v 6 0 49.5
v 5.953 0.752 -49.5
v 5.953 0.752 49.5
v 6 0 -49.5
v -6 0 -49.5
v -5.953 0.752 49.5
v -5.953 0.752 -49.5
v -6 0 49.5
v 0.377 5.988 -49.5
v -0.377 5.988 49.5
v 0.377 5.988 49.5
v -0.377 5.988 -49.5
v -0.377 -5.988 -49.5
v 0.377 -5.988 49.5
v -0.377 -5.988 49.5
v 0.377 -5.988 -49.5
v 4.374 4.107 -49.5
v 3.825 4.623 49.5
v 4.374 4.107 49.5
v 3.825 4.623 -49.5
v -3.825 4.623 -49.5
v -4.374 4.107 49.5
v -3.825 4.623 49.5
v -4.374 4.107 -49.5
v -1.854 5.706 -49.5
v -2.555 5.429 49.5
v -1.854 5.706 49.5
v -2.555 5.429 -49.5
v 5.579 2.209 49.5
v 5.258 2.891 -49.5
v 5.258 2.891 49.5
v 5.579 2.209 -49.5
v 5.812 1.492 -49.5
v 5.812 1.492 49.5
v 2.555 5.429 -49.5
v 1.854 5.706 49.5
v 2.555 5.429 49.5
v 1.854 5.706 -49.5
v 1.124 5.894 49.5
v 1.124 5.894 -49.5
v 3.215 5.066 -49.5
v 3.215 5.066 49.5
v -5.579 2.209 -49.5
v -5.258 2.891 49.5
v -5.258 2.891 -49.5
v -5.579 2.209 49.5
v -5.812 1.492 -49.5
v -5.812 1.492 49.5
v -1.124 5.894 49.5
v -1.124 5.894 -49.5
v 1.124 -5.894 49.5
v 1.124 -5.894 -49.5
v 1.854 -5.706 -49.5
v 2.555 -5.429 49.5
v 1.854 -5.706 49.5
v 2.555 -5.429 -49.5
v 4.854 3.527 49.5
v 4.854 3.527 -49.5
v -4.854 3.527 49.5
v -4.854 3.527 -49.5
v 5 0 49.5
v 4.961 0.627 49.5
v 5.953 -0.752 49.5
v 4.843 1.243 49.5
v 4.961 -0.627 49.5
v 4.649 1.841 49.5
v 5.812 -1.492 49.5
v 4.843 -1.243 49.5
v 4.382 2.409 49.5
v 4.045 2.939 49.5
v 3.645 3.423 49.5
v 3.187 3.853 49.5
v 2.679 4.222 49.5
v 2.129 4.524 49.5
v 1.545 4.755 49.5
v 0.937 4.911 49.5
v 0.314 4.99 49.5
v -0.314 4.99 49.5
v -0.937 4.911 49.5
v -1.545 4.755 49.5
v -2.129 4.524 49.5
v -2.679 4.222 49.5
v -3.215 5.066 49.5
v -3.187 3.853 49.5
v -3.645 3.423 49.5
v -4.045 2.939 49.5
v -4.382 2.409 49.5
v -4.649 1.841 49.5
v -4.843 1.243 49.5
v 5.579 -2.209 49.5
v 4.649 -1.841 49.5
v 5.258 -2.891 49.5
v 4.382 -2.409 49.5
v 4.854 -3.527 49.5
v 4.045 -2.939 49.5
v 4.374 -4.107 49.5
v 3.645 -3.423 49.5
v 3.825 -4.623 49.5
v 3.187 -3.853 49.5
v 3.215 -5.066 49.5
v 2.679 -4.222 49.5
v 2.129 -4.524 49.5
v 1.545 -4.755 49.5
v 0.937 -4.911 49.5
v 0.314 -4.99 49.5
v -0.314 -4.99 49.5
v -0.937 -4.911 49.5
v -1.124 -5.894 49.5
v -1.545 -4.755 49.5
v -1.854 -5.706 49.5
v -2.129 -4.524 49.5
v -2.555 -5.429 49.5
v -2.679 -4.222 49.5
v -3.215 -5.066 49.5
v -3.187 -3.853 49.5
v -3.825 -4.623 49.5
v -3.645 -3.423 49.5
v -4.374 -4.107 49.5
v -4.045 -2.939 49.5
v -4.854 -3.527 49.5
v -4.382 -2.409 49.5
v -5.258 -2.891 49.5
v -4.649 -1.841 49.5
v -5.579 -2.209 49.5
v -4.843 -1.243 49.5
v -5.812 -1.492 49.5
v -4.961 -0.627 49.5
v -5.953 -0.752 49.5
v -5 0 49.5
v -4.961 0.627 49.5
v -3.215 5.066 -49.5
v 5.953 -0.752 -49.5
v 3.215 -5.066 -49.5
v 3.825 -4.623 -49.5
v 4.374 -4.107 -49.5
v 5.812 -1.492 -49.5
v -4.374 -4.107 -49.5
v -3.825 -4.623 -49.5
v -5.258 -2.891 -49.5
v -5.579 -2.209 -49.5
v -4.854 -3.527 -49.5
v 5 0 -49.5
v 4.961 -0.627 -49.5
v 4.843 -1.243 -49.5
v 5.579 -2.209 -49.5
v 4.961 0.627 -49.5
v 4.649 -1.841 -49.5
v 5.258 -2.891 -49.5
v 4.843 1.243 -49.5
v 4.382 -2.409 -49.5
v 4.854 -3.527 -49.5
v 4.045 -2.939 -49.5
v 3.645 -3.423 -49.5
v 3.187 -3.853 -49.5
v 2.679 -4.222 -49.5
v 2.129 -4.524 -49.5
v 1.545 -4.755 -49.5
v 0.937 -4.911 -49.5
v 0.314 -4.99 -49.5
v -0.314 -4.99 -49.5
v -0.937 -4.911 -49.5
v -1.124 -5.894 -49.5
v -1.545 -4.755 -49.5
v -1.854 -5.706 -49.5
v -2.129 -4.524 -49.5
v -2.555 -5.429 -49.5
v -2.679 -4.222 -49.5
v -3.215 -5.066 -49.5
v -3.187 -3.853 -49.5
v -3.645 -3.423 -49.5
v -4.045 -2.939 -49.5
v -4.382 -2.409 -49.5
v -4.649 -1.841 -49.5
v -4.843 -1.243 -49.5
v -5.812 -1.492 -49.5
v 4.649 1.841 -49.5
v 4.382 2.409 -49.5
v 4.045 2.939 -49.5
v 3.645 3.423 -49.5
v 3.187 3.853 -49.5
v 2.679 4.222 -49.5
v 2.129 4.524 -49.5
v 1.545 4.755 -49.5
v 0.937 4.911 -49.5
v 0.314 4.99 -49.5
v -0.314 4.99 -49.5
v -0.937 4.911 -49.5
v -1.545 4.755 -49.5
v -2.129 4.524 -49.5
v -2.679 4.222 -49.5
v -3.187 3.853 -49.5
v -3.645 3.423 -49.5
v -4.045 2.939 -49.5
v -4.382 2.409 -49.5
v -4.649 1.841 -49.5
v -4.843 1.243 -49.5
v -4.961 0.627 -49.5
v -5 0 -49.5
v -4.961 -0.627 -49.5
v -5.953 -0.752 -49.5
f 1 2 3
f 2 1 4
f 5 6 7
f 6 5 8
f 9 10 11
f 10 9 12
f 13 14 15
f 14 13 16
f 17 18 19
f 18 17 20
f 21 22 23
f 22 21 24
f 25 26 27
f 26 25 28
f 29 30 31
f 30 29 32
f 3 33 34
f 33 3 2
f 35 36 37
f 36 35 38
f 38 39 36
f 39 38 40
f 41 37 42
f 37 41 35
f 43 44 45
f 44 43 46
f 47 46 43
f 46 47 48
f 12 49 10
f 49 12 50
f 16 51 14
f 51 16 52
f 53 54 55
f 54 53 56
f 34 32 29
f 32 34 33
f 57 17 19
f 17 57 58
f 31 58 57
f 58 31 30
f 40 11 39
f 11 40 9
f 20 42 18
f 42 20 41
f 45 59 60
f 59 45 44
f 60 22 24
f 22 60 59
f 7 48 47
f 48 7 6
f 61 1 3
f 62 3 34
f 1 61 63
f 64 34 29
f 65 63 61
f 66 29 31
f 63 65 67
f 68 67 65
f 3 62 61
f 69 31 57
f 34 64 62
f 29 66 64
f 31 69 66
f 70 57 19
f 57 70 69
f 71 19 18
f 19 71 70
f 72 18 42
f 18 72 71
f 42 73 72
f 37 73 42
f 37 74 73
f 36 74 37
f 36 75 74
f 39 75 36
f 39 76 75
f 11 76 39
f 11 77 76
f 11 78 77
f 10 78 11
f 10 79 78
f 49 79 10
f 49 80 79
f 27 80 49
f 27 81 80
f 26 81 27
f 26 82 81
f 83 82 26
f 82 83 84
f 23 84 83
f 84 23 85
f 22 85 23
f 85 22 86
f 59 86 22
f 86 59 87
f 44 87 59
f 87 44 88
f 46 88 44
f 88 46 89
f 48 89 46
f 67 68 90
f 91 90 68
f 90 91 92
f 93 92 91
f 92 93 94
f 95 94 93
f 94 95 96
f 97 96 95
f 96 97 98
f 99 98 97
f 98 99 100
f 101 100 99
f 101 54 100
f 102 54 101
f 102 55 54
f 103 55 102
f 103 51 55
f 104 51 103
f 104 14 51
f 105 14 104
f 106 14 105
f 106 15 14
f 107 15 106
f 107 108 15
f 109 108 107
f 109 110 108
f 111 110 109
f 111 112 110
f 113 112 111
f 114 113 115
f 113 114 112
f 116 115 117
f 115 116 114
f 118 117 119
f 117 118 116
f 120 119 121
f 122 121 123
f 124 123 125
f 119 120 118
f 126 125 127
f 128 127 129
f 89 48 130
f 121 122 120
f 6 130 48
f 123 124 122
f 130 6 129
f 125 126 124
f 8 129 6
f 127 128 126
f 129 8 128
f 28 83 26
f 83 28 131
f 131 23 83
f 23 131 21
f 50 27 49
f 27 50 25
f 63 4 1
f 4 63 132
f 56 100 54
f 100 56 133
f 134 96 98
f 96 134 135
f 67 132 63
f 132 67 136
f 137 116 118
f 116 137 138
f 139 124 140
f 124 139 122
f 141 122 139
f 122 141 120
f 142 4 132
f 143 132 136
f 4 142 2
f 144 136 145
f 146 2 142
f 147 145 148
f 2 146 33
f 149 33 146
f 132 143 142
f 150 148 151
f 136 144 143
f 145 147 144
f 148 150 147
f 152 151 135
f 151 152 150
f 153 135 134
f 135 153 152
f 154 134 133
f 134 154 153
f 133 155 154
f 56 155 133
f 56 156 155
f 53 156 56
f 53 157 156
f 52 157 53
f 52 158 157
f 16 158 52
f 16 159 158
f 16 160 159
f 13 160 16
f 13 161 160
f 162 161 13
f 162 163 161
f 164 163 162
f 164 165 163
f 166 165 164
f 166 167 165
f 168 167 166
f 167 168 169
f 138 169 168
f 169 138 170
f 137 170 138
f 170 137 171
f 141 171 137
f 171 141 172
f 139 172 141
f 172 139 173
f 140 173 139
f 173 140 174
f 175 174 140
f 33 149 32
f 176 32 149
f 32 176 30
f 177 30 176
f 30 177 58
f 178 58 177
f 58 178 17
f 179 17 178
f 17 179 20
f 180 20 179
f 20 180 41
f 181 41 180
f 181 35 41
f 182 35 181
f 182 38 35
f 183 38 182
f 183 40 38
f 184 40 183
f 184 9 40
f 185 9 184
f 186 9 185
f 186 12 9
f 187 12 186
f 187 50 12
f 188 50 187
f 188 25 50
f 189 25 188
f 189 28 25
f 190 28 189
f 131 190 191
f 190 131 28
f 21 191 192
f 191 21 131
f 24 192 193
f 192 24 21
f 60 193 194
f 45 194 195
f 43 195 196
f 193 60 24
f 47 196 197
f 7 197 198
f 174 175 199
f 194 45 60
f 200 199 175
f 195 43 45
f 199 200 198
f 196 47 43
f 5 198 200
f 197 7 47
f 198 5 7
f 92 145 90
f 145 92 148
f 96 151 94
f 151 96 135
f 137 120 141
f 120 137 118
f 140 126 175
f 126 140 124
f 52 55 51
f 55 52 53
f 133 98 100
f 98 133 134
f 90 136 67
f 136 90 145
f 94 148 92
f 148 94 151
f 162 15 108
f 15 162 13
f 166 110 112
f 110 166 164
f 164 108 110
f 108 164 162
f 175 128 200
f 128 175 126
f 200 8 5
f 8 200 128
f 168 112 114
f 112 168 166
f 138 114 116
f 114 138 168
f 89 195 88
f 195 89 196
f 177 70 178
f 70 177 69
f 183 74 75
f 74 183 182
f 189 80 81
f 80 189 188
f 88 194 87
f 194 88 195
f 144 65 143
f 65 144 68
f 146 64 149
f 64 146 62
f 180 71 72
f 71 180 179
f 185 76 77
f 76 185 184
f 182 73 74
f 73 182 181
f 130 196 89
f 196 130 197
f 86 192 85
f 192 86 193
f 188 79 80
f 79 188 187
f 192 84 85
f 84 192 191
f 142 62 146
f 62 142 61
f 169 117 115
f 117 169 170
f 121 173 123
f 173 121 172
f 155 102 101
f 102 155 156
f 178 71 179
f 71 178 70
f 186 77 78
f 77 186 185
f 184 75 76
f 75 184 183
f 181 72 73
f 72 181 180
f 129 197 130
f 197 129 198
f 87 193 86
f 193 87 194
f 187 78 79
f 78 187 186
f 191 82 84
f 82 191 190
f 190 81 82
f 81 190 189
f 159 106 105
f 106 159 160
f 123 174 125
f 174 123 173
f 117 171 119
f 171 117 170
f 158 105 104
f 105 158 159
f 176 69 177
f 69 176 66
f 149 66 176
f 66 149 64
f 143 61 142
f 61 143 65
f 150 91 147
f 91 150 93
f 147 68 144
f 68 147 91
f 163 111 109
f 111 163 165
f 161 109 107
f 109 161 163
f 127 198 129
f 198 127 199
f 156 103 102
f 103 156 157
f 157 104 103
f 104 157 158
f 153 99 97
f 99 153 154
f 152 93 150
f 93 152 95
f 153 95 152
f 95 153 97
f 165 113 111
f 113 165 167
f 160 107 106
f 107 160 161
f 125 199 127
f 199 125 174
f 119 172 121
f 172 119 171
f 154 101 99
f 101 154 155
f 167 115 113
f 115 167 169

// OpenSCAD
$fn = 50;


difference() {
	union() {
		translate(v = [0, 0, -49.5000000000]) {
			cylinder(h = 99, r = 6.0000000000);
		}
	}
	union() {
		translate(v = [0, 0, -100.0000000000]) {
			cylinder(h = 200, r = 5);
		}
	}
}
